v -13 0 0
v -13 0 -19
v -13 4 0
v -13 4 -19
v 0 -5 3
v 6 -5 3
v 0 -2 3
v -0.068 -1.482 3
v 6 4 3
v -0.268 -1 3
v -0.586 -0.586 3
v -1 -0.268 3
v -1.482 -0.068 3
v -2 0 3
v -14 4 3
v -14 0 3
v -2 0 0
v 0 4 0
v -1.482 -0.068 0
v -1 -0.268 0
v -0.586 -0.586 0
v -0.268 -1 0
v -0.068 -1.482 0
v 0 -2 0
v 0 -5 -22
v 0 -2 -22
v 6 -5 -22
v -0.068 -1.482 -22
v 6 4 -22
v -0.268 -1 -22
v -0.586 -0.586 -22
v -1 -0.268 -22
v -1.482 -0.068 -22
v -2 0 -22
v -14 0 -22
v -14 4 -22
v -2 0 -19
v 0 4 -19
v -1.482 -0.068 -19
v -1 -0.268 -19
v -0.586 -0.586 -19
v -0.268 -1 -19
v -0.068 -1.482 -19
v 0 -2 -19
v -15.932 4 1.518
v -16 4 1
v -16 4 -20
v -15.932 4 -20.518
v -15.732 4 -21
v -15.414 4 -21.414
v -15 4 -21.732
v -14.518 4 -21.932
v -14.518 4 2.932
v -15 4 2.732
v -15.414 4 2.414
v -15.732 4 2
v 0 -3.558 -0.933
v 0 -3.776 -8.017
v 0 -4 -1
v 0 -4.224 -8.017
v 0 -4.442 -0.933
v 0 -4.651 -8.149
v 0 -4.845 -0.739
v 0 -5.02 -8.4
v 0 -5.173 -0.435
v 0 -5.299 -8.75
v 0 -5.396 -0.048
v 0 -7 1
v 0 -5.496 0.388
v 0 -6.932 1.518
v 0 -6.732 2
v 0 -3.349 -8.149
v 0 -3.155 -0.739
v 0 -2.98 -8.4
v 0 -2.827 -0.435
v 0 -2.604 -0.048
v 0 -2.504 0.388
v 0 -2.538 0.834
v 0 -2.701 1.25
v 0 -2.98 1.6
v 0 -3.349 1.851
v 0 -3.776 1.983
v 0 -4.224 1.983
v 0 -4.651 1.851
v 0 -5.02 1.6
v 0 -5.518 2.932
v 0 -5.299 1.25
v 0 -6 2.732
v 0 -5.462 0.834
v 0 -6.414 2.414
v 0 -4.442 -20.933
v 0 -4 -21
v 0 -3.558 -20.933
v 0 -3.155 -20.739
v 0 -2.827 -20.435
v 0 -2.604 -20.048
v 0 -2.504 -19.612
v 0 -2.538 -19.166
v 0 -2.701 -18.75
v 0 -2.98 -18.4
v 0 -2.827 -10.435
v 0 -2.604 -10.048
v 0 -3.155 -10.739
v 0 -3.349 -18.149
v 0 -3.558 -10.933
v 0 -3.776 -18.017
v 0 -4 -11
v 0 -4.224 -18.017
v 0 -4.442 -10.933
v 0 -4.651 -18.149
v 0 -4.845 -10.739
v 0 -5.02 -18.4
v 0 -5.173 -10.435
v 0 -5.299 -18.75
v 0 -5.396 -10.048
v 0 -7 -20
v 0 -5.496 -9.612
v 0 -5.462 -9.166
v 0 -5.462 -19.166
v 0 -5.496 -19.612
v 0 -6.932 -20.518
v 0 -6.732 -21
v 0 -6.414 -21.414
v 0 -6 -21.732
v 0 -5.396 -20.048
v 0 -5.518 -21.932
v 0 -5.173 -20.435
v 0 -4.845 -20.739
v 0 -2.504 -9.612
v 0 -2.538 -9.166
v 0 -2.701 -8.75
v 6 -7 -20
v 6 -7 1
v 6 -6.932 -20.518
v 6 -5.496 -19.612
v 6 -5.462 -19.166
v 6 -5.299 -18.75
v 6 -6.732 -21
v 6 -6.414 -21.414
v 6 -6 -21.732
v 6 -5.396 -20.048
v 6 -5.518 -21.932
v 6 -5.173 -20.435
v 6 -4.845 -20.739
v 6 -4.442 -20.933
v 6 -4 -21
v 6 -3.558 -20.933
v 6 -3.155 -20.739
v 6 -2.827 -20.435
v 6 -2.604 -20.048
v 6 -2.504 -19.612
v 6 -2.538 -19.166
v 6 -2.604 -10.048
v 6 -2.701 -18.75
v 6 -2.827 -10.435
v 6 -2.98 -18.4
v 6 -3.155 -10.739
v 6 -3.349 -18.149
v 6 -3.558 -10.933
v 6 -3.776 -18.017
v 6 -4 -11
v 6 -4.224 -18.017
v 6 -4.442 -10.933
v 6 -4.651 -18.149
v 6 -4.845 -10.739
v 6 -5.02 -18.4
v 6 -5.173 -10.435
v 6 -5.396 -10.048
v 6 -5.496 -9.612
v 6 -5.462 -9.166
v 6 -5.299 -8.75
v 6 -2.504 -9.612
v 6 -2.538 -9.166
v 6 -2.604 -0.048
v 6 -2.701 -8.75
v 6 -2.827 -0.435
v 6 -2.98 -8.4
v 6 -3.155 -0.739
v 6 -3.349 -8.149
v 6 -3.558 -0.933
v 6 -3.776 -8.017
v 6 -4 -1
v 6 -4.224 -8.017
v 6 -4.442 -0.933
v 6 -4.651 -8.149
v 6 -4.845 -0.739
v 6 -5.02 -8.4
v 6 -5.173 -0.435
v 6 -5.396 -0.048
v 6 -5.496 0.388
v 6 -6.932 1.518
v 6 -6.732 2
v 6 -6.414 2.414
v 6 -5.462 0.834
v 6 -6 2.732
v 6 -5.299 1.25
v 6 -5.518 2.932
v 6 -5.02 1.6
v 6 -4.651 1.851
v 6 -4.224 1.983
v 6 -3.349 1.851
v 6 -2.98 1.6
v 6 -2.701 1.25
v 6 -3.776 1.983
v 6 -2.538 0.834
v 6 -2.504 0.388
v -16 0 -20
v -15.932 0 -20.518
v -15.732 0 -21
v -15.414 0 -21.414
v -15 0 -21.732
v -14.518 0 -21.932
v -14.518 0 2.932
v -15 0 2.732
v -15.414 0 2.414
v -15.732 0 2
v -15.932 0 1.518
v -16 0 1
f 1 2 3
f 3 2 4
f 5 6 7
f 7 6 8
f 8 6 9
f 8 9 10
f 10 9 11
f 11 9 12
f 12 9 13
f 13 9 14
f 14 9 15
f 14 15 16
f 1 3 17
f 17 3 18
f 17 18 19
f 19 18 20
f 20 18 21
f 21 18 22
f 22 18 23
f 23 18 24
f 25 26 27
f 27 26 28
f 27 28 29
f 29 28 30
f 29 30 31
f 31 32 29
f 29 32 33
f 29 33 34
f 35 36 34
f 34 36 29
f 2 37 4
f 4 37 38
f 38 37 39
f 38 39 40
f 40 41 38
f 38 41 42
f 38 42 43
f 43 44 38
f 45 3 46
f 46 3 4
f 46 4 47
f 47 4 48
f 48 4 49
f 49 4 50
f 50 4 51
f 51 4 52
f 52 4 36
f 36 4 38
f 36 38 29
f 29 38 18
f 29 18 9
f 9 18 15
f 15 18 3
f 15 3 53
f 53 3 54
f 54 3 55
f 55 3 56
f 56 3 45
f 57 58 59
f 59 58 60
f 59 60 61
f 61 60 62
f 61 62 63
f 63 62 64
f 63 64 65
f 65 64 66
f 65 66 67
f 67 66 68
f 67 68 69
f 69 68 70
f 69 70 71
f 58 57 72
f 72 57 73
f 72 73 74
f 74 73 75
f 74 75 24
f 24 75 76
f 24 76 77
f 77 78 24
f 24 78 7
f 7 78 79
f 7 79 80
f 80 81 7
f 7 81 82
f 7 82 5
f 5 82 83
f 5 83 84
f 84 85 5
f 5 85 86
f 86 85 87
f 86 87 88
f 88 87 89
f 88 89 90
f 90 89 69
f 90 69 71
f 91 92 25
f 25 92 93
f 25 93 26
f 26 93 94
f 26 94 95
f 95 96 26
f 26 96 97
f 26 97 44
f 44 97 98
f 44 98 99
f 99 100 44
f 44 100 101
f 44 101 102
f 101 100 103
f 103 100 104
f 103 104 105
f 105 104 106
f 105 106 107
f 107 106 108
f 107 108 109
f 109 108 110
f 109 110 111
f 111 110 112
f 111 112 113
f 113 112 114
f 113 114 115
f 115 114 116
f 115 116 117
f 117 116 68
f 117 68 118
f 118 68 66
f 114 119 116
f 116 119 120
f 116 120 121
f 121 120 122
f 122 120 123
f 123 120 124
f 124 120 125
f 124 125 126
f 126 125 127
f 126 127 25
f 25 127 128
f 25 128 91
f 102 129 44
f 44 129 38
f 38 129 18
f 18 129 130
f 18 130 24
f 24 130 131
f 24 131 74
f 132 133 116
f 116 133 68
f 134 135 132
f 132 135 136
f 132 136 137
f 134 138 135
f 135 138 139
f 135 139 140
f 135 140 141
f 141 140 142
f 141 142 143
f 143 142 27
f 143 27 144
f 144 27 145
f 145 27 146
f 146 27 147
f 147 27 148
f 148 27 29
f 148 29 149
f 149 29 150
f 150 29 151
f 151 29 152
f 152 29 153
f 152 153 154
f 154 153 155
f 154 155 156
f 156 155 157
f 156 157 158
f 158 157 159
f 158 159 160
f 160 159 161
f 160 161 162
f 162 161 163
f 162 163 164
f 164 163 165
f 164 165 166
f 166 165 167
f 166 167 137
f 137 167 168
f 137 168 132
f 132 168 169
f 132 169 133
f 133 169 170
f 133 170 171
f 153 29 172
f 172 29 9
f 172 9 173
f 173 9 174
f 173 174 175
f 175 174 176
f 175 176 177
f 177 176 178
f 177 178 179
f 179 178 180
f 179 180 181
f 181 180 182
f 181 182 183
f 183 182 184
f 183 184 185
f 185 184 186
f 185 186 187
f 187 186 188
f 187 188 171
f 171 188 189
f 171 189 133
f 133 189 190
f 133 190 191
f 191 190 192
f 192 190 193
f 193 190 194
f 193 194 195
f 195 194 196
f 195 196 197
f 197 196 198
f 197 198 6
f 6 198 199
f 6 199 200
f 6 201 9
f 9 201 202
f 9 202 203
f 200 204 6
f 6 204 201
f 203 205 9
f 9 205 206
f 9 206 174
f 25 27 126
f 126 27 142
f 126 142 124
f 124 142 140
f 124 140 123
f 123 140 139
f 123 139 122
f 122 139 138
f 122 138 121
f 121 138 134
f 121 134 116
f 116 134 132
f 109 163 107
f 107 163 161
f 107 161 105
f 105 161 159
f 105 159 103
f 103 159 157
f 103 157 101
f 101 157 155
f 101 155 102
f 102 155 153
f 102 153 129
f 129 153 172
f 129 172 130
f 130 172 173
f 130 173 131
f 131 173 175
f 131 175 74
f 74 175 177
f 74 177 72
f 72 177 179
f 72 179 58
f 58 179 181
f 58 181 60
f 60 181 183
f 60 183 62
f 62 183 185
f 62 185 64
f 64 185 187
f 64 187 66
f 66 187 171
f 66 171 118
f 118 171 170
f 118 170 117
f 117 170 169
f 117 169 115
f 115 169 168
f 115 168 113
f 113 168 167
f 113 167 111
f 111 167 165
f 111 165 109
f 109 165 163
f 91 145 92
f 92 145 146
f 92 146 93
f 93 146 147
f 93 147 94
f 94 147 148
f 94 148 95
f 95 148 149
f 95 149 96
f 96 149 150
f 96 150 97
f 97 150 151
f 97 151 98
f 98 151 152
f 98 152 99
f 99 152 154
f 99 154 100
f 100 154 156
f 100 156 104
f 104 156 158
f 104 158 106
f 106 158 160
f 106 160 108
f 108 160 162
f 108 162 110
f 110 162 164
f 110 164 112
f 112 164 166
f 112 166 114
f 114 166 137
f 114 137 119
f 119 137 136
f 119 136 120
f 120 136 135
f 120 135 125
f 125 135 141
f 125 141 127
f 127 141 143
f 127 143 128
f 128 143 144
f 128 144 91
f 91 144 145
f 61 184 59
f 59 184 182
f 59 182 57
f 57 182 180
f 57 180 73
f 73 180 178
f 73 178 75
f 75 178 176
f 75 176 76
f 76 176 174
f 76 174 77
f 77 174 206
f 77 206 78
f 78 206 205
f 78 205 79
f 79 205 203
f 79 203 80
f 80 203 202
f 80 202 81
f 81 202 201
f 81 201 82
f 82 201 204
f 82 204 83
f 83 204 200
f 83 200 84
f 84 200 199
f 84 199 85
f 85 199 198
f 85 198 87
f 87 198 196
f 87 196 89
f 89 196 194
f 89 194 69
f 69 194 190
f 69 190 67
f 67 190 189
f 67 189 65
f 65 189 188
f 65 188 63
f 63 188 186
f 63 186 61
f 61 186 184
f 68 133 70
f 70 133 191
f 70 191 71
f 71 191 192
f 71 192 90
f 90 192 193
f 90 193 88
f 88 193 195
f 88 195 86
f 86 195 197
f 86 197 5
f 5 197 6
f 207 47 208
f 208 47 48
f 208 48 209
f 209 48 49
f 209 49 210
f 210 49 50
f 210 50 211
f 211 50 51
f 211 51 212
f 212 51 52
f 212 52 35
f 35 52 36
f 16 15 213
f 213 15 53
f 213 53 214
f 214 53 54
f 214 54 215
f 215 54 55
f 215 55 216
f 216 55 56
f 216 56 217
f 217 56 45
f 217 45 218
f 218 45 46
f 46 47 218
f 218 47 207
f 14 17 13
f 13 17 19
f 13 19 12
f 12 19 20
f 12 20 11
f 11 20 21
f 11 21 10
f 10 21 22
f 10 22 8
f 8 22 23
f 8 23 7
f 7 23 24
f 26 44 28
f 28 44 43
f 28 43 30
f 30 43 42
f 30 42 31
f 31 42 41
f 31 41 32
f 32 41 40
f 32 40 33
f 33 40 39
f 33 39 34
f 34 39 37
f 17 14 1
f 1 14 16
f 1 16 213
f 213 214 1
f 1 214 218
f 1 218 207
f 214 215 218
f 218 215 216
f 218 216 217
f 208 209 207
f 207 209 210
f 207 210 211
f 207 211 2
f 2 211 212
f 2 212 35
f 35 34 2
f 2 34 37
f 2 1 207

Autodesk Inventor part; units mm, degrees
ref_plane "YZ Plane" through (0, 0, 0) normal (1, 0, 0) x (0, 1, 0)
ref_plane "XZ Plane" through (0, 0, 0) normal (0, 1, 0) x (-1, 0, 0)
ref_plane "XY Plane" through (0, 0, 0) normal (0, 0, 1) x (1, 0, 0)
sketch "Sketch1" plane through (0, 0, 0) normal (0, 1, 0) x (-1, 0, 0)
  line L0 (0, 0) -> (13, 0)
  line L1 (13, 0) -> (13, -19)
  line L2 (13, -19) -> (0, -19)
  line L3 (0, -19) -> (0, 0)
  line L4 (0, 0) -> (-3, 0)
  line L5 (-3, 0) -> (-3, 3)
  line L6 (-3, 3) -> (0, 3)
  line L7 (0, 3) -> (0, 0)
  line L8 (13, -19) -> (16, -19)
  line L9 (16, -19) -> (16, -22)
  line L10 (16, -22) -> (13, -22)
  line L11 (13, -22) -> (13, -19)
  line L12 (16, -22) -> (-3, -22)
  line L13 (-3, -22) -> (-3, 3)
  line L14 (-3, 3) -> (16, 3)
  line L15 (16, 3) -> (16, -22)
  dimension "d0" = 13
  dimension "d1" = 19
  dimension "d2" = 3
  dimension "d3" = 3
  dimension "d4" = 3
  dimension "d5" = 3
extrude "Extrusion1" add sketch "Sketch1" along normal blind 4 contours L7 L14 L15 L8 L1 L0 | L3 L2 L11 L12 L13 L4 | L4 L5 L6 L7 | L8 L9 L10 L11
sketch "Sketch2" plane through (3, 0, 3) normal (1, 0, 0) x (0, 0, -1)
  line L0 (25, 0) -> (25, 4) projected
  line L1 (25, 0) -> (0, 0) projected
  line L2 (25, 0) -> (0, 0)
  line L3 (25, 0) -> (12.5, 0)
  line L4 (3, 0) -> (22, 0) projected
  line L5 (12.5, 0) -> (12.5, -4)
  circle A0 centre (12.5, -4) radius 1.5
  line L6 (12.5, -4) -> (22.5, -4)
  line L7 (22.5, -4) -> (2.5, -4)
  circle A1 centre (2.5, -4) radius 1.5
  circle A2 centre (22.5, -4) radius 1.5
  line L8 (0, 0) -> (25, 0)
  line L9 (25, 0) -> (25, -7)
  line L10 (25, -7) -> (0, -7)
  line L11 (0, -7) -> (0, 0)
  line L12 (25, 0) -> (25, 4) projected
  line L13 (0, 0) -> (25, 0)
  line L14 (25, 0) -> (25, 4)
  line L15 (25, 4) -> (0, 4)
  line L16 (0, 4) -> (0, 0)
  dimension "d8" = 12.5
  dimension "d9" = 4
  dimension "d10" = 3
  dimension "d11" = 10
  dimension "d12" = 20
  dimension "d13" = 3
  dimension "d14" = 3
  dimension "d15" = 7
extrude "Extrusion2" add sketch "Sketch2" along normal mid plane 6
fillet "Fillet1" radius 2 4 edges at (-16, 2, -22) (-16, 2, 3) (3, -7, 3) (3, -7, -22)
fillet "Fillet2" radius 2 2 edges at (0, 0, -20.5) (0, 0, 1.5)
sketch "Sketch3" plane through (0, 4, 0) normal (0, 1, 0) x (1, 0, 0)
  point P0 (0, 0)
properties part number "power_button_holder"
